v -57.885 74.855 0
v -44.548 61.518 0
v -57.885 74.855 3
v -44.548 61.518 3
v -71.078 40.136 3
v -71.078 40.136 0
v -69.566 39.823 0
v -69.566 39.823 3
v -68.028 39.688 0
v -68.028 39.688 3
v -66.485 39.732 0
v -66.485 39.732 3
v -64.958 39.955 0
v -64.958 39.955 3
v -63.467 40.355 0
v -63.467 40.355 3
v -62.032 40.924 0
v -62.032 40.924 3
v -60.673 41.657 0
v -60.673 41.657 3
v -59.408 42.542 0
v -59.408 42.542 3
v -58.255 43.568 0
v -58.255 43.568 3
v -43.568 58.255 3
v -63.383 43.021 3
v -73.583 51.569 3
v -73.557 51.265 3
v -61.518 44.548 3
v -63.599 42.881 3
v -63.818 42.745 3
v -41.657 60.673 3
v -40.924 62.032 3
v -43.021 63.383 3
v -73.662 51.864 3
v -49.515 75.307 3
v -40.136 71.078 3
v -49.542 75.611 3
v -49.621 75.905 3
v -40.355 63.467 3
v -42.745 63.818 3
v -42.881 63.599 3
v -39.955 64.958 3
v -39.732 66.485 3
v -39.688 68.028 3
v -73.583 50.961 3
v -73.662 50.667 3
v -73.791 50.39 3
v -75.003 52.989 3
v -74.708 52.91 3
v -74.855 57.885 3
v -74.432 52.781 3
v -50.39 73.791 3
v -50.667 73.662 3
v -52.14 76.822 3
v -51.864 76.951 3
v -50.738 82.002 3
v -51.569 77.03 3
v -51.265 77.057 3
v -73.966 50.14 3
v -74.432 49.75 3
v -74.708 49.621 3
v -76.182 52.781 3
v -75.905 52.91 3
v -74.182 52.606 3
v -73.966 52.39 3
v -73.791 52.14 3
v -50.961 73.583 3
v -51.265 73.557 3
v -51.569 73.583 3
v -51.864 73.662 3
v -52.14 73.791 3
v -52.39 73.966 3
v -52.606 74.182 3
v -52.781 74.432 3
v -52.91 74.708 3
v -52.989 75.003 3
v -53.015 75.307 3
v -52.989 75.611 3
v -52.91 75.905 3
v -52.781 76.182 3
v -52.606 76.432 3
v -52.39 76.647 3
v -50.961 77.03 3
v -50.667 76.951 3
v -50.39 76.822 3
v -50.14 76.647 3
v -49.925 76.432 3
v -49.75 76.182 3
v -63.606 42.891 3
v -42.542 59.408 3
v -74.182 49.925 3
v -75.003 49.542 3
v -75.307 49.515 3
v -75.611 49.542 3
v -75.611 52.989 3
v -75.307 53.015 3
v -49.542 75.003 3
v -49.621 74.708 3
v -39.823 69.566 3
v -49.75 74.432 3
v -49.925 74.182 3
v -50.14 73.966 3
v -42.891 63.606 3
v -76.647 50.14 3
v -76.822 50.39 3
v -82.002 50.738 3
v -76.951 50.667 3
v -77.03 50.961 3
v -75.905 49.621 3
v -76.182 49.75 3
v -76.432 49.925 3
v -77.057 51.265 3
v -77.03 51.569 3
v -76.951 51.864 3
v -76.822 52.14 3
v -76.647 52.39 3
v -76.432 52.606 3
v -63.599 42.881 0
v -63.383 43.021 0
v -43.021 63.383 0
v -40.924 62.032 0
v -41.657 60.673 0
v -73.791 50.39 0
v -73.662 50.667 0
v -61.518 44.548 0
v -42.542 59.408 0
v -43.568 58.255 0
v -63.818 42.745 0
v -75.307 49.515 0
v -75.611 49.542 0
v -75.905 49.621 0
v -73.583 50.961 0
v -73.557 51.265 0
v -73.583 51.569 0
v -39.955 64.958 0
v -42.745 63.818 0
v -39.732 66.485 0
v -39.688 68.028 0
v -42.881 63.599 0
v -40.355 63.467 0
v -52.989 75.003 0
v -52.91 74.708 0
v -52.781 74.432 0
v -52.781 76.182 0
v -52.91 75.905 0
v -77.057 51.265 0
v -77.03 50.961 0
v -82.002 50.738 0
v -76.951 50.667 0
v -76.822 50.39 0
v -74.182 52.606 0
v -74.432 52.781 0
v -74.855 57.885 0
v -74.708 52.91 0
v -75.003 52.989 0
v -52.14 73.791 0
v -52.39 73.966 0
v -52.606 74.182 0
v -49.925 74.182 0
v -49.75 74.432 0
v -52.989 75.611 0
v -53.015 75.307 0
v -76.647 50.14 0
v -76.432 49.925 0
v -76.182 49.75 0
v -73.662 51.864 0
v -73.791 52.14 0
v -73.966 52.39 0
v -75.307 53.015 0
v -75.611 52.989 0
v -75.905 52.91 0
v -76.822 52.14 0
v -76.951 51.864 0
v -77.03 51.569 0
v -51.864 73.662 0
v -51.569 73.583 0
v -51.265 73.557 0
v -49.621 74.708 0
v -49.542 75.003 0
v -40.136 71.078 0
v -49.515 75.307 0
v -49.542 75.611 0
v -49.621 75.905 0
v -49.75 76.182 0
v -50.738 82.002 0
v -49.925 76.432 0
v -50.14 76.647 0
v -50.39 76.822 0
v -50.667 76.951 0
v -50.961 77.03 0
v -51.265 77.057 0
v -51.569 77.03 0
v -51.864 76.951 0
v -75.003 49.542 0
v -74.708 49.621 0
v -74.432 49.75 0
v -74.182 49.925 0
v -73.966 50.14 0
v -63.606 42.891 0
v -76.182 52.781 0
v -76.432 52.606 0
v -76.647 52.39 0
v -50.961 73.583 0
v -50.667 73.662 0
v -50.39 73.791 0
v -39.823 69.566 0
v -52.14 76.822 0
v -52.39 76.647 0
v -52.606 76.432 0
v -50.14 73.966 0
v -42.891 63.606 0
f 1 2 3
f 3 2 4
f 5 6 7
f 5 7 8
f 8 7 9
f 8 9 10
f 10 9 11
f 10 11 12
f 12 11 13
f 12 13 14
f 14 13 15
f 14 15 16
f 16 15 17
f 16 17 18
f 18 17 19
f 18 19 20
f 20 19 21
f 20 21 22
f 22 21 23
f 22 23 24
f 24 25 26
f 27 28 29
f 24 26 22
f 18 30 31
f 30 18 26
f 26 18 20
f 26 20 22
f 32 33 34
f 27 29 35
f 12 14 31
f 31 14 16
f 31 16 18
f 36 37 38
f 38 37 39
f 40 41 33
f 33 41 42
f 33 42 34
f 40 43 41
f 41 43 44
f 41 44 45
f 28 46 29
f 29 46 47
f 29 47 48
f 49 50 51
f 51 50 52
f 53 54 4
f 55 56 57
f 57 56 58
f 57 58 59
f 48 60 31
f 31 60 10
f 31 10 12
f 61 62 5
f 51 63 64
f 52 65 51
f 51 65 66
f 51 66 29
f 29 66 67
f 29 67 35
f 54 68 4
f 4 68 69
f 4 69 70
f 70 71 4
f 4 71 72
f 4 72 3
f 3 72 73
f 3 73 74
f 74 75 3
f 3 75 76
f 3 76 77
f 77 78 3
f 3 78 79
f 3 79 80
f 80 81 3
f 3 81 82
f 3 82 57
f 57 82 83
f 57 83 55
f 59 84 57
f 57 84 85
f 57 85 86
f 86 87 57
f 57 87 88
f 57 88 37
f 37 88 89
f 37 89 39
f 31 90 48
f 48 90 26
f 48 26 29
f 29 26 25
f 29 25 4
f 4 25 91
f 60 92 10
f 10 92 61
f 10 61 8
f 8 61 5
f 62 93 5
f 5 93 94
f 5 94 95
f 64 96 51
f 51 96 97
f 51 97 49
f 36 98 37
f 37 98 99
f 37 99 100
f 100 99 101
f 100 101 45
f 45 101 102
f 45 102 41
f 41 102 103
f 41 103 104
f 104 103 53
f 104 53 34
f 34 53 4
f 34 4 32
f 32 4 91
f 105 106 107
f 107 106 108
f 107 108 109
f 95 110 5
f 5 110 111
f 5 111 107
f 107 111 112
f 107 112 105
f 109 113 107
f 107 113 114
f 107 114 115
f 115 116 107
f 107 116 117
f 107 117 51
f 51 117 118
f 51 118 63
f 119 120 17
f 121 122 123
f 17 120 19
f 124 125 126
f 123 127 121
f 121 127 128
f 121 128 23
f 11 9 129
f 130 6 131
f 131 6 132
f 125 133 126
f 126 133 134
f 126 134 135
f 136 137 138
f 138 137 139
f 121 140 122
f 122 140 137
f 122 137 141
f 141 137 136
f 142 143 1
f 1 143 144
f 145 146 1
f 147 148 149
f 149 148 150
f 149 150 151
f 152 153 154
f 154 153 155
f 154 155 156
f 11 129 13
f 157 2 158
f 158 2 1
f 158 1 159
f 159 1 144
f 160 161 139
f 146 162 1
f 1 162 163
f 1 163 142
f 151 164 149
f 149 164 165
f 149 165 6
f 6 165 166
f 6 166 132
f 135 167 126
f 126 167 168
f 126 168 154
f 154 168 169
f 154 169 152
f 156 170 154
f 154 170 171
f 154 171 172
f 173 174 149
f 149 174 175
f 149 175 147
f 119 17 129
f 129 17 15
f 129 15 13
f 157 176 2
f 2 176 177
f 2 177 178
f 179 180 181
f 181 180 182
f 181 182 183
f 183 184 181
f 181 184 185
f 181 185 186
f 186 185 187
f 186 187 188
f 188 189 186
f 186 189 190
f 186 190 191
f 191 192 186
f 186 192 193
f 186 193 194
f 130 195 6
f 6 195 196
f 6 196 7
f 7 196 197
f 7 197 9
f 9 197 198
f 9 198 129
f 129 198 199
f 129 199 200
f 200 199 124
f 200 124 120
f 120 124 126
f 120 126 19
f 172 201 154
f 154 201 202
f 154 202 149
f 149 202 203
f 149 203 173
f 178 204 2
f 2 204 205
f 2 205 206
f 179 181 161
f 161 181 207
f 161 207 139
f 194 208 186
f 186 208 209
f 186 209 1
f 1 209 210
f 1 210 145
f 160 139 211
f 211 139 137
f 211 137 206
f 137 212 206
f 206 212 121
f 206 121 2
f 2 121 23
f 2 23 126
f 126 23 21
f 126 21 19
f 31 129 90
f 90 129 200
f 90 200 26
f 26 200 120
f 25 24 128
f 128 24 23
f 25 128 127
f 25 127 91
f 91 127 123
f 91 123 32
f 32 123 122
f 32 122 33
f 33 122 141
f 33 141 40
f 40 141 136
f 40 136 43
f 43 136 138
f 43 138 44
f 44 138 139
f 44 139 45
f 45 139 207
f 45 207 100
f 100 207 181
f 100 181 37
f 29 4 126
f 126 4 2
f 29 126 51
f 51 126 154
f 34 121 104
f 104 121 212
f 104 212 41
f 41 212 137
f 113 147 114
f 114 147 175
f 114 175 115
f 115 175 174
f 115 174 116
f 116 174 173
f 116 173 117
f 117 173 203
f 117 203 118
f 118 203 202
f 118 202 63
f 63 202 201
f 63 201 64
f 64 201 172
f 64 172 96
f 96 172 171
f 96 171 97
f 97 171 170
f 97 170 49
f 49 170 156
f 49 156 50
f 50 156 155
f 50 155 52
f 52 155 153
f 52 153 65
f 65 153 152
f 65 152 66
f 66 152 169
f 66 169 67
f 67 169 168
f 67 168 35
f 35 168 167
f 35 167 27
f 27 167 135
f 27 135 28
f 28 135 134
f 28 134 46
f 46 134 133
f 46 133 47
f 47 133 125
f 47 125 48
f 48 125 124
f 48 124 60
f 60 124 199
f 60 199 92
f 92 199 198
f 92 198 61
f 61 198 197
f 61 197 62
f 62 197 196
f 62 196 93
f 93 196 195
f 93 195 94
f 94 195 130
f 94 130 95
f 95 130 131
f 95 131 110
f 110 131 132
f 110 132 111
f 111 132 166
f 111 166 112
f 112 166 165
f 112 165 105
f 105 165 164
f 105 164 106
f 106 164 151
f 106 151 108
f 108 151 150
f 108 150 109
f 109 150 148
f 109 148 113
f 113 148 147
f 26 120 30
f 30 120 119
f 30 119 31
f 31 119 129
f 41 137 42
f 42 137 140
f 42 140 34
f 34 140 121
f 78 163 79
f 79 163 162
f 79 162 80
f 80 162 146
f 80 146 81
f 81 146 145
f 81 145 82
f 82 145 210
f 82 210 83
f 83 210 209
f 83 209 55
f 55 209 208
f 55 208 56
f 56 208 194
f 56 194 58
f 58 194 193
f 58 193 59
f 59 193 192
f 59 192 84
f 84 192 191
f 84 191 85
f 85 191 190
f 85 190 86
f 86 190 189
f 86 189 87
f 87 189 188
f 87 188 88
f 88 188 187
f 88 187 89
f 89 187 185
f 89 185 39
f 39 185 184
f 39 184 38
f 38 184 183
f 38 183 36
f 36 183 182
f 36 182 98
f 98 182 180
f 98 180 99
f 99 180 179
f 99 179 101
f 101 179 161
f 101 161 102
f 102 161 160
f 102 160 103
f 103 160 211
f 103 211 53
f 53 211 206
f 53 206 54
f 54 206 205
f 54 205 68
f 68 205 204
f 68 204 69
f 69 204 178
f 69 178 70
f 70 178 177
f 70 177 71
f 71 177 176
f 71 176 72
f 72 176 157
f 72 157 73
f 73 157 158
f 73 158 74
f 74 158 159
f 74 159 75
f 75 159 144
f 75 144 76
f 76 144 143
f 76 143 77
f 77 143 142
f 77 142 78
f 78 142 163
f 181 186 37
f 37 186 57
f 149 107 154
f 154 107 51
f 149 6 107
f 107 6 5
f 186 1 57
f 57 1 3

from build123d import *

# Parameters (mm, degrees)
SKETCH1_R           = 1.75
BOSS_EXTRUDE2_DEPTH = 3
CUT_EXTRUDE5_DEPTH  = 117.344085899


with BuildPart() as part:
    # Sketch1 → Boss-Extrude2 (new body)
    # profile 1 of 6: a face of its own
    with BuildSketch(Plane.XY):
        with BuildLine():
            Line((-61.518289963, 44.547727215), (-78.684996473, 61.714433725))
            ThreePointArc((-78.684996473, 61.714433725), (-82.079566173, 51.162002537), (-75.485462345, 42.251632055))
            ThreePointArc((-75.485462345, 42.251632055), (-69.588581896, 41.003233411), (-63.818207412, 42.745208303))
            ThreePointArc((-63.818207412, 42.745208303), (-63.605961831, 42.89146595), (-63.383207651, 43.021158129))
            ThreePointArc((-63.383207651, 43.021158129), (-62.41276888, 43.738044879), (-61.518289963, 44.547727215))
        make_face()
        with Locations((-75.306872196, 51.265241636)):
            Circle(SKETCH1_R, mode=Mode.SUBTRACT)
    # profile 2 of 6: a face of its own
    with BuildSketch(Plane.XY):
        with BuildLine():
            ThreePointArc((-63.818207412, 42.745208303), (-69.588581896, 41.003233411), (-75.485462345, 42.251632055))
            ThreePointArc((-75.485462345, 42.251632055), (-66.626510988, 39.720558383), (-58.255022397, 43.568354094))
            ThreePointArc((-58.255022397, 43.568354094), (-59.291136488, 43.01863263), (-60.457290906, 43.144370333))
            ThreePointArc((-60.457290906, 43.144370333), (-61.934255267, 43.415364041), (-63.383207651, 43.021158129))
            ThreePointArc((-63.383207651, 43.021158129), (-63.599243517, 42.880875383), (-63.818207412, 42.745208303))
        make_face()
    # profile 3 of 6: a face of its own
    with BuildSketch(Plane.XY):
        with BuildLine():
            Line((-53.033008589, 53.033008589), (-61.518289963, 44.547727215))
            ThreePointArc((-61.518289963, 44.547727215), (-62.41276888, 43.738044879), (-63.383207651, 43.021158129))
            ThreePointArc((-63.383207651, 43.021158129), (-61.934255267, 43.415364041), (-60.457290906, 43.144370333))
            ThreePointArc((-60.457290906, 43.144370333), (-59.291136488, 43.01863263), (-58.255022397, 43.568354094))
            Line((-58.255022397, 43.568354094), (-50.911688245, 50.911688245))
            Line((-50.911688245, 50.911688245), (-53.033008589, 53.033008589))
        make_face()
    # profile 4 of 6: a face of its own
    with BuildSketch(Plane.XY):
        with BuildLine():
            Line((-44.547727215, 61.518289963), (-53.033008589, 53.033008589))
            Line((-53.033008589, 53.033008589), (-50.911688245, 50.911688245))
            Line((-50.911688245, 50.911688245), (-43.568354094, 58.255022397))
            ThreePointArc((-43.568354094, 58.255022397), (-43.01863263, 59.291136488), (-43.144370333, 60.457290906))
            ThreePointArc((-43.144370333, 60.457290906), (-43.415364041, 61.934255267), (-43.021158129, 63.383207651))
            ThreePointArc((-43.021158129, 63.383207651), (-43.738044879, 62.41276888), (-44.547727215, 61.518289963))
        make_face()
    # profile 5 of 6: a face of its own
    with BuildSketch(Plane.XY):
        with BuildLine():
            ThreePointArc((-42.745208303, 63.818207412), (-42.880875383, 63.599243517), (-43.021158129, 63.383207651))
            ThreePointArc((-43.021158129, 63.383207651), (-43.415364041, 61.934255267), (-43.144370333, 60.457290906))
            ThreePointArc((-43.144370333, 60.457290906), (-43.01863263, 59.291136488), (-43.568354094, 58.255022397))
            ThreePointArc((-43.568354094, 58.255022397), (-39.720558383, 66.626510988), (-42.251632055, 75.485462345))
            ThreePointArc((-42.251632055, 75.485462345), (-41.003233411, 69.588581896), (-42.745208303, 63.818207412))
        make_face()
    # profile 6 of 6: a face of its own
    with BuildSketch(Plane.XY):
        with BuildLine():
            Line((-61.714433725, 78.684996473), (-44.547727215, 61.518289963))
            ThreePointArc((-44.547727215, 61.518289963), (-43.738044879, 62.41276888), (-43.021158129, 63.383207651))
            ThreePointArc((-43.021158129, 63.383207651), (-42.89146595, 63.605961831), (-42.745208303, 63.818207412))
            ThreePointArc((-42.745208303, 63.818207412), (-41.003233411, 69.588581896), (-42.251632055, 75.485462345))
            ThreePointArc((-42.251632055, 75.485462345), (-51.162002537, 82.079566173), (-61.714433725, 78.684996473))
        make_face()
        with Locations((-51.265241636, 75.306872196)):
            Circle(SKETCH1_R, mode=Mode.SUBTRACT)
    extrude(amount=BOSS_EXTRUDE2_DEPTH)

    # Sketch2 → Cut-Extrude5 (cut, through all)
    with BuildSketch(Plane.XY.offset(3)):
        with BuildLine():
            Line((-87.146030282, 55.882108481), (-82.002155393, 50.738233593))
            ThreePointArc((-82.002155393, 50.738233593), (-81.721300187, 56.642700912), (-78.684996473, 61.714433725))
            Line((-78.684996473, 61.714433725), (-74.855475867, 57.884913119))
            Line((-74.855475867, 57.884913119), (-73.595511338, 59.144877648))
            Line((-73.595511338, 59.144877648), (-82.002155393, 67.551521704))
            Line((-82.002155393, 67.551521704), (-87.146030282, 55.882108481))
        make_face()
        with BuildLine():
            ThreePointArc((-78.684996473, 61.714433725), (-81.721300187, 56.642700912), (-82.002155393, 50.738233593))
            Line((-82.002155393, 50.738233593), (-74.855475867, 57.884913119))
            Line((-74.855475867, 57.884913119), (-78.684996473, 61.714433725))
        make_face()
        with BuildLine():
            Line((-71.077925903, 40.135754876), (-82.002155393, 50.738233593))
            ThreePointArc((-82.002155393, 50.738233593), (-79.729344323, 45.738159691), (-75.485462345, 42.251632055))
            ThreePointArc((-75.485462345, 42.251632055), (-73.379988253, 40.988939163), (-71.077925903, 40.135754876))
        make_face()
        with BuildLine():
            ThreePointArc((-75.485462345, 42.251632055), (-79.729344323, 45.738159691), (-82.002155393, 50.738233593))
            Line((-82.002155393, 50.738233593), (-82.002155393, 40.135754876))
            Line((-82.002155393, 40.135754876), (-71.077925903, 40.135754876))
            ThreePointArc((-71.077925903, 40.135754876), (-73.379988253, 40.988939163), (-75.485462345, 42.251632055))
        make_face()
        with BuildLine():
            ThreePointArc((-61.714433725, 78.684996473), (-56.642700912, 81.721300187), (-50.738233593, 82.002155393))
            Line((-50.738233593, 82.002155393), (-55.882108481, 87.146030282))
            Line((-55.882108481, 87.146030282), (-67.551521704, 82.002155393))
            Line((-67.551521704, 82.002155393), (-59.144877648, 73.595511338))
            Line((-59.144877648, 73.595511338), (-57.884913119, 74.855475867))
            Line((-57.884913119, 74.855475867), (-61.714433725, 78.684996473))
        make_face()
        with BuildLine():
            Line((-57.884913119, 74.855475867), (-50.738233593, 82.002155393))
            ThreePointArc((-50.738233593, 82.002155393), (-56.642700912, 81.721300187), (-61.714433725, 78.684996473))
            Line((-61.714433725, 78.684996473), (-57.884913119, 74.855475867))
        make_face()
        with BuildLine():
            ThreePointArc((-42.251632055, 75.485462345), (-45.738159691, 79.729344323), (-50.738233593, 82.002155393))
            Line((-50.738233593, 82.002155393), (-40.135754876, 71.077925903))
            ThreePointArc((-40.135754876, 71.077925903), (-40.988939163, 73.379988253), (-42.251632055, 75.485462345))
        make_face()
        with BuildLine():
            Line((-40.135754876, 82.002155393), (-50.738233593, 82.002155393))
            ThreePointArc((-50.738233593, 82.002155393), (-45.738159691, 79.729344323), (-42.251632055, 75.485462345))
            ThreePointArc((-42.251632055, 75.485462345), (-40.988939163, 73.379988253), (-40.135754876, 71.077925903))
            Line((-40.135754876, 71.077925903), (-40.135754876, 82.002155393))
        make_face()
    extrude(amount=-CUT_EXTRUDE5_DEPTH, mode=Mode.SUBTRACT)


solid = part.part
